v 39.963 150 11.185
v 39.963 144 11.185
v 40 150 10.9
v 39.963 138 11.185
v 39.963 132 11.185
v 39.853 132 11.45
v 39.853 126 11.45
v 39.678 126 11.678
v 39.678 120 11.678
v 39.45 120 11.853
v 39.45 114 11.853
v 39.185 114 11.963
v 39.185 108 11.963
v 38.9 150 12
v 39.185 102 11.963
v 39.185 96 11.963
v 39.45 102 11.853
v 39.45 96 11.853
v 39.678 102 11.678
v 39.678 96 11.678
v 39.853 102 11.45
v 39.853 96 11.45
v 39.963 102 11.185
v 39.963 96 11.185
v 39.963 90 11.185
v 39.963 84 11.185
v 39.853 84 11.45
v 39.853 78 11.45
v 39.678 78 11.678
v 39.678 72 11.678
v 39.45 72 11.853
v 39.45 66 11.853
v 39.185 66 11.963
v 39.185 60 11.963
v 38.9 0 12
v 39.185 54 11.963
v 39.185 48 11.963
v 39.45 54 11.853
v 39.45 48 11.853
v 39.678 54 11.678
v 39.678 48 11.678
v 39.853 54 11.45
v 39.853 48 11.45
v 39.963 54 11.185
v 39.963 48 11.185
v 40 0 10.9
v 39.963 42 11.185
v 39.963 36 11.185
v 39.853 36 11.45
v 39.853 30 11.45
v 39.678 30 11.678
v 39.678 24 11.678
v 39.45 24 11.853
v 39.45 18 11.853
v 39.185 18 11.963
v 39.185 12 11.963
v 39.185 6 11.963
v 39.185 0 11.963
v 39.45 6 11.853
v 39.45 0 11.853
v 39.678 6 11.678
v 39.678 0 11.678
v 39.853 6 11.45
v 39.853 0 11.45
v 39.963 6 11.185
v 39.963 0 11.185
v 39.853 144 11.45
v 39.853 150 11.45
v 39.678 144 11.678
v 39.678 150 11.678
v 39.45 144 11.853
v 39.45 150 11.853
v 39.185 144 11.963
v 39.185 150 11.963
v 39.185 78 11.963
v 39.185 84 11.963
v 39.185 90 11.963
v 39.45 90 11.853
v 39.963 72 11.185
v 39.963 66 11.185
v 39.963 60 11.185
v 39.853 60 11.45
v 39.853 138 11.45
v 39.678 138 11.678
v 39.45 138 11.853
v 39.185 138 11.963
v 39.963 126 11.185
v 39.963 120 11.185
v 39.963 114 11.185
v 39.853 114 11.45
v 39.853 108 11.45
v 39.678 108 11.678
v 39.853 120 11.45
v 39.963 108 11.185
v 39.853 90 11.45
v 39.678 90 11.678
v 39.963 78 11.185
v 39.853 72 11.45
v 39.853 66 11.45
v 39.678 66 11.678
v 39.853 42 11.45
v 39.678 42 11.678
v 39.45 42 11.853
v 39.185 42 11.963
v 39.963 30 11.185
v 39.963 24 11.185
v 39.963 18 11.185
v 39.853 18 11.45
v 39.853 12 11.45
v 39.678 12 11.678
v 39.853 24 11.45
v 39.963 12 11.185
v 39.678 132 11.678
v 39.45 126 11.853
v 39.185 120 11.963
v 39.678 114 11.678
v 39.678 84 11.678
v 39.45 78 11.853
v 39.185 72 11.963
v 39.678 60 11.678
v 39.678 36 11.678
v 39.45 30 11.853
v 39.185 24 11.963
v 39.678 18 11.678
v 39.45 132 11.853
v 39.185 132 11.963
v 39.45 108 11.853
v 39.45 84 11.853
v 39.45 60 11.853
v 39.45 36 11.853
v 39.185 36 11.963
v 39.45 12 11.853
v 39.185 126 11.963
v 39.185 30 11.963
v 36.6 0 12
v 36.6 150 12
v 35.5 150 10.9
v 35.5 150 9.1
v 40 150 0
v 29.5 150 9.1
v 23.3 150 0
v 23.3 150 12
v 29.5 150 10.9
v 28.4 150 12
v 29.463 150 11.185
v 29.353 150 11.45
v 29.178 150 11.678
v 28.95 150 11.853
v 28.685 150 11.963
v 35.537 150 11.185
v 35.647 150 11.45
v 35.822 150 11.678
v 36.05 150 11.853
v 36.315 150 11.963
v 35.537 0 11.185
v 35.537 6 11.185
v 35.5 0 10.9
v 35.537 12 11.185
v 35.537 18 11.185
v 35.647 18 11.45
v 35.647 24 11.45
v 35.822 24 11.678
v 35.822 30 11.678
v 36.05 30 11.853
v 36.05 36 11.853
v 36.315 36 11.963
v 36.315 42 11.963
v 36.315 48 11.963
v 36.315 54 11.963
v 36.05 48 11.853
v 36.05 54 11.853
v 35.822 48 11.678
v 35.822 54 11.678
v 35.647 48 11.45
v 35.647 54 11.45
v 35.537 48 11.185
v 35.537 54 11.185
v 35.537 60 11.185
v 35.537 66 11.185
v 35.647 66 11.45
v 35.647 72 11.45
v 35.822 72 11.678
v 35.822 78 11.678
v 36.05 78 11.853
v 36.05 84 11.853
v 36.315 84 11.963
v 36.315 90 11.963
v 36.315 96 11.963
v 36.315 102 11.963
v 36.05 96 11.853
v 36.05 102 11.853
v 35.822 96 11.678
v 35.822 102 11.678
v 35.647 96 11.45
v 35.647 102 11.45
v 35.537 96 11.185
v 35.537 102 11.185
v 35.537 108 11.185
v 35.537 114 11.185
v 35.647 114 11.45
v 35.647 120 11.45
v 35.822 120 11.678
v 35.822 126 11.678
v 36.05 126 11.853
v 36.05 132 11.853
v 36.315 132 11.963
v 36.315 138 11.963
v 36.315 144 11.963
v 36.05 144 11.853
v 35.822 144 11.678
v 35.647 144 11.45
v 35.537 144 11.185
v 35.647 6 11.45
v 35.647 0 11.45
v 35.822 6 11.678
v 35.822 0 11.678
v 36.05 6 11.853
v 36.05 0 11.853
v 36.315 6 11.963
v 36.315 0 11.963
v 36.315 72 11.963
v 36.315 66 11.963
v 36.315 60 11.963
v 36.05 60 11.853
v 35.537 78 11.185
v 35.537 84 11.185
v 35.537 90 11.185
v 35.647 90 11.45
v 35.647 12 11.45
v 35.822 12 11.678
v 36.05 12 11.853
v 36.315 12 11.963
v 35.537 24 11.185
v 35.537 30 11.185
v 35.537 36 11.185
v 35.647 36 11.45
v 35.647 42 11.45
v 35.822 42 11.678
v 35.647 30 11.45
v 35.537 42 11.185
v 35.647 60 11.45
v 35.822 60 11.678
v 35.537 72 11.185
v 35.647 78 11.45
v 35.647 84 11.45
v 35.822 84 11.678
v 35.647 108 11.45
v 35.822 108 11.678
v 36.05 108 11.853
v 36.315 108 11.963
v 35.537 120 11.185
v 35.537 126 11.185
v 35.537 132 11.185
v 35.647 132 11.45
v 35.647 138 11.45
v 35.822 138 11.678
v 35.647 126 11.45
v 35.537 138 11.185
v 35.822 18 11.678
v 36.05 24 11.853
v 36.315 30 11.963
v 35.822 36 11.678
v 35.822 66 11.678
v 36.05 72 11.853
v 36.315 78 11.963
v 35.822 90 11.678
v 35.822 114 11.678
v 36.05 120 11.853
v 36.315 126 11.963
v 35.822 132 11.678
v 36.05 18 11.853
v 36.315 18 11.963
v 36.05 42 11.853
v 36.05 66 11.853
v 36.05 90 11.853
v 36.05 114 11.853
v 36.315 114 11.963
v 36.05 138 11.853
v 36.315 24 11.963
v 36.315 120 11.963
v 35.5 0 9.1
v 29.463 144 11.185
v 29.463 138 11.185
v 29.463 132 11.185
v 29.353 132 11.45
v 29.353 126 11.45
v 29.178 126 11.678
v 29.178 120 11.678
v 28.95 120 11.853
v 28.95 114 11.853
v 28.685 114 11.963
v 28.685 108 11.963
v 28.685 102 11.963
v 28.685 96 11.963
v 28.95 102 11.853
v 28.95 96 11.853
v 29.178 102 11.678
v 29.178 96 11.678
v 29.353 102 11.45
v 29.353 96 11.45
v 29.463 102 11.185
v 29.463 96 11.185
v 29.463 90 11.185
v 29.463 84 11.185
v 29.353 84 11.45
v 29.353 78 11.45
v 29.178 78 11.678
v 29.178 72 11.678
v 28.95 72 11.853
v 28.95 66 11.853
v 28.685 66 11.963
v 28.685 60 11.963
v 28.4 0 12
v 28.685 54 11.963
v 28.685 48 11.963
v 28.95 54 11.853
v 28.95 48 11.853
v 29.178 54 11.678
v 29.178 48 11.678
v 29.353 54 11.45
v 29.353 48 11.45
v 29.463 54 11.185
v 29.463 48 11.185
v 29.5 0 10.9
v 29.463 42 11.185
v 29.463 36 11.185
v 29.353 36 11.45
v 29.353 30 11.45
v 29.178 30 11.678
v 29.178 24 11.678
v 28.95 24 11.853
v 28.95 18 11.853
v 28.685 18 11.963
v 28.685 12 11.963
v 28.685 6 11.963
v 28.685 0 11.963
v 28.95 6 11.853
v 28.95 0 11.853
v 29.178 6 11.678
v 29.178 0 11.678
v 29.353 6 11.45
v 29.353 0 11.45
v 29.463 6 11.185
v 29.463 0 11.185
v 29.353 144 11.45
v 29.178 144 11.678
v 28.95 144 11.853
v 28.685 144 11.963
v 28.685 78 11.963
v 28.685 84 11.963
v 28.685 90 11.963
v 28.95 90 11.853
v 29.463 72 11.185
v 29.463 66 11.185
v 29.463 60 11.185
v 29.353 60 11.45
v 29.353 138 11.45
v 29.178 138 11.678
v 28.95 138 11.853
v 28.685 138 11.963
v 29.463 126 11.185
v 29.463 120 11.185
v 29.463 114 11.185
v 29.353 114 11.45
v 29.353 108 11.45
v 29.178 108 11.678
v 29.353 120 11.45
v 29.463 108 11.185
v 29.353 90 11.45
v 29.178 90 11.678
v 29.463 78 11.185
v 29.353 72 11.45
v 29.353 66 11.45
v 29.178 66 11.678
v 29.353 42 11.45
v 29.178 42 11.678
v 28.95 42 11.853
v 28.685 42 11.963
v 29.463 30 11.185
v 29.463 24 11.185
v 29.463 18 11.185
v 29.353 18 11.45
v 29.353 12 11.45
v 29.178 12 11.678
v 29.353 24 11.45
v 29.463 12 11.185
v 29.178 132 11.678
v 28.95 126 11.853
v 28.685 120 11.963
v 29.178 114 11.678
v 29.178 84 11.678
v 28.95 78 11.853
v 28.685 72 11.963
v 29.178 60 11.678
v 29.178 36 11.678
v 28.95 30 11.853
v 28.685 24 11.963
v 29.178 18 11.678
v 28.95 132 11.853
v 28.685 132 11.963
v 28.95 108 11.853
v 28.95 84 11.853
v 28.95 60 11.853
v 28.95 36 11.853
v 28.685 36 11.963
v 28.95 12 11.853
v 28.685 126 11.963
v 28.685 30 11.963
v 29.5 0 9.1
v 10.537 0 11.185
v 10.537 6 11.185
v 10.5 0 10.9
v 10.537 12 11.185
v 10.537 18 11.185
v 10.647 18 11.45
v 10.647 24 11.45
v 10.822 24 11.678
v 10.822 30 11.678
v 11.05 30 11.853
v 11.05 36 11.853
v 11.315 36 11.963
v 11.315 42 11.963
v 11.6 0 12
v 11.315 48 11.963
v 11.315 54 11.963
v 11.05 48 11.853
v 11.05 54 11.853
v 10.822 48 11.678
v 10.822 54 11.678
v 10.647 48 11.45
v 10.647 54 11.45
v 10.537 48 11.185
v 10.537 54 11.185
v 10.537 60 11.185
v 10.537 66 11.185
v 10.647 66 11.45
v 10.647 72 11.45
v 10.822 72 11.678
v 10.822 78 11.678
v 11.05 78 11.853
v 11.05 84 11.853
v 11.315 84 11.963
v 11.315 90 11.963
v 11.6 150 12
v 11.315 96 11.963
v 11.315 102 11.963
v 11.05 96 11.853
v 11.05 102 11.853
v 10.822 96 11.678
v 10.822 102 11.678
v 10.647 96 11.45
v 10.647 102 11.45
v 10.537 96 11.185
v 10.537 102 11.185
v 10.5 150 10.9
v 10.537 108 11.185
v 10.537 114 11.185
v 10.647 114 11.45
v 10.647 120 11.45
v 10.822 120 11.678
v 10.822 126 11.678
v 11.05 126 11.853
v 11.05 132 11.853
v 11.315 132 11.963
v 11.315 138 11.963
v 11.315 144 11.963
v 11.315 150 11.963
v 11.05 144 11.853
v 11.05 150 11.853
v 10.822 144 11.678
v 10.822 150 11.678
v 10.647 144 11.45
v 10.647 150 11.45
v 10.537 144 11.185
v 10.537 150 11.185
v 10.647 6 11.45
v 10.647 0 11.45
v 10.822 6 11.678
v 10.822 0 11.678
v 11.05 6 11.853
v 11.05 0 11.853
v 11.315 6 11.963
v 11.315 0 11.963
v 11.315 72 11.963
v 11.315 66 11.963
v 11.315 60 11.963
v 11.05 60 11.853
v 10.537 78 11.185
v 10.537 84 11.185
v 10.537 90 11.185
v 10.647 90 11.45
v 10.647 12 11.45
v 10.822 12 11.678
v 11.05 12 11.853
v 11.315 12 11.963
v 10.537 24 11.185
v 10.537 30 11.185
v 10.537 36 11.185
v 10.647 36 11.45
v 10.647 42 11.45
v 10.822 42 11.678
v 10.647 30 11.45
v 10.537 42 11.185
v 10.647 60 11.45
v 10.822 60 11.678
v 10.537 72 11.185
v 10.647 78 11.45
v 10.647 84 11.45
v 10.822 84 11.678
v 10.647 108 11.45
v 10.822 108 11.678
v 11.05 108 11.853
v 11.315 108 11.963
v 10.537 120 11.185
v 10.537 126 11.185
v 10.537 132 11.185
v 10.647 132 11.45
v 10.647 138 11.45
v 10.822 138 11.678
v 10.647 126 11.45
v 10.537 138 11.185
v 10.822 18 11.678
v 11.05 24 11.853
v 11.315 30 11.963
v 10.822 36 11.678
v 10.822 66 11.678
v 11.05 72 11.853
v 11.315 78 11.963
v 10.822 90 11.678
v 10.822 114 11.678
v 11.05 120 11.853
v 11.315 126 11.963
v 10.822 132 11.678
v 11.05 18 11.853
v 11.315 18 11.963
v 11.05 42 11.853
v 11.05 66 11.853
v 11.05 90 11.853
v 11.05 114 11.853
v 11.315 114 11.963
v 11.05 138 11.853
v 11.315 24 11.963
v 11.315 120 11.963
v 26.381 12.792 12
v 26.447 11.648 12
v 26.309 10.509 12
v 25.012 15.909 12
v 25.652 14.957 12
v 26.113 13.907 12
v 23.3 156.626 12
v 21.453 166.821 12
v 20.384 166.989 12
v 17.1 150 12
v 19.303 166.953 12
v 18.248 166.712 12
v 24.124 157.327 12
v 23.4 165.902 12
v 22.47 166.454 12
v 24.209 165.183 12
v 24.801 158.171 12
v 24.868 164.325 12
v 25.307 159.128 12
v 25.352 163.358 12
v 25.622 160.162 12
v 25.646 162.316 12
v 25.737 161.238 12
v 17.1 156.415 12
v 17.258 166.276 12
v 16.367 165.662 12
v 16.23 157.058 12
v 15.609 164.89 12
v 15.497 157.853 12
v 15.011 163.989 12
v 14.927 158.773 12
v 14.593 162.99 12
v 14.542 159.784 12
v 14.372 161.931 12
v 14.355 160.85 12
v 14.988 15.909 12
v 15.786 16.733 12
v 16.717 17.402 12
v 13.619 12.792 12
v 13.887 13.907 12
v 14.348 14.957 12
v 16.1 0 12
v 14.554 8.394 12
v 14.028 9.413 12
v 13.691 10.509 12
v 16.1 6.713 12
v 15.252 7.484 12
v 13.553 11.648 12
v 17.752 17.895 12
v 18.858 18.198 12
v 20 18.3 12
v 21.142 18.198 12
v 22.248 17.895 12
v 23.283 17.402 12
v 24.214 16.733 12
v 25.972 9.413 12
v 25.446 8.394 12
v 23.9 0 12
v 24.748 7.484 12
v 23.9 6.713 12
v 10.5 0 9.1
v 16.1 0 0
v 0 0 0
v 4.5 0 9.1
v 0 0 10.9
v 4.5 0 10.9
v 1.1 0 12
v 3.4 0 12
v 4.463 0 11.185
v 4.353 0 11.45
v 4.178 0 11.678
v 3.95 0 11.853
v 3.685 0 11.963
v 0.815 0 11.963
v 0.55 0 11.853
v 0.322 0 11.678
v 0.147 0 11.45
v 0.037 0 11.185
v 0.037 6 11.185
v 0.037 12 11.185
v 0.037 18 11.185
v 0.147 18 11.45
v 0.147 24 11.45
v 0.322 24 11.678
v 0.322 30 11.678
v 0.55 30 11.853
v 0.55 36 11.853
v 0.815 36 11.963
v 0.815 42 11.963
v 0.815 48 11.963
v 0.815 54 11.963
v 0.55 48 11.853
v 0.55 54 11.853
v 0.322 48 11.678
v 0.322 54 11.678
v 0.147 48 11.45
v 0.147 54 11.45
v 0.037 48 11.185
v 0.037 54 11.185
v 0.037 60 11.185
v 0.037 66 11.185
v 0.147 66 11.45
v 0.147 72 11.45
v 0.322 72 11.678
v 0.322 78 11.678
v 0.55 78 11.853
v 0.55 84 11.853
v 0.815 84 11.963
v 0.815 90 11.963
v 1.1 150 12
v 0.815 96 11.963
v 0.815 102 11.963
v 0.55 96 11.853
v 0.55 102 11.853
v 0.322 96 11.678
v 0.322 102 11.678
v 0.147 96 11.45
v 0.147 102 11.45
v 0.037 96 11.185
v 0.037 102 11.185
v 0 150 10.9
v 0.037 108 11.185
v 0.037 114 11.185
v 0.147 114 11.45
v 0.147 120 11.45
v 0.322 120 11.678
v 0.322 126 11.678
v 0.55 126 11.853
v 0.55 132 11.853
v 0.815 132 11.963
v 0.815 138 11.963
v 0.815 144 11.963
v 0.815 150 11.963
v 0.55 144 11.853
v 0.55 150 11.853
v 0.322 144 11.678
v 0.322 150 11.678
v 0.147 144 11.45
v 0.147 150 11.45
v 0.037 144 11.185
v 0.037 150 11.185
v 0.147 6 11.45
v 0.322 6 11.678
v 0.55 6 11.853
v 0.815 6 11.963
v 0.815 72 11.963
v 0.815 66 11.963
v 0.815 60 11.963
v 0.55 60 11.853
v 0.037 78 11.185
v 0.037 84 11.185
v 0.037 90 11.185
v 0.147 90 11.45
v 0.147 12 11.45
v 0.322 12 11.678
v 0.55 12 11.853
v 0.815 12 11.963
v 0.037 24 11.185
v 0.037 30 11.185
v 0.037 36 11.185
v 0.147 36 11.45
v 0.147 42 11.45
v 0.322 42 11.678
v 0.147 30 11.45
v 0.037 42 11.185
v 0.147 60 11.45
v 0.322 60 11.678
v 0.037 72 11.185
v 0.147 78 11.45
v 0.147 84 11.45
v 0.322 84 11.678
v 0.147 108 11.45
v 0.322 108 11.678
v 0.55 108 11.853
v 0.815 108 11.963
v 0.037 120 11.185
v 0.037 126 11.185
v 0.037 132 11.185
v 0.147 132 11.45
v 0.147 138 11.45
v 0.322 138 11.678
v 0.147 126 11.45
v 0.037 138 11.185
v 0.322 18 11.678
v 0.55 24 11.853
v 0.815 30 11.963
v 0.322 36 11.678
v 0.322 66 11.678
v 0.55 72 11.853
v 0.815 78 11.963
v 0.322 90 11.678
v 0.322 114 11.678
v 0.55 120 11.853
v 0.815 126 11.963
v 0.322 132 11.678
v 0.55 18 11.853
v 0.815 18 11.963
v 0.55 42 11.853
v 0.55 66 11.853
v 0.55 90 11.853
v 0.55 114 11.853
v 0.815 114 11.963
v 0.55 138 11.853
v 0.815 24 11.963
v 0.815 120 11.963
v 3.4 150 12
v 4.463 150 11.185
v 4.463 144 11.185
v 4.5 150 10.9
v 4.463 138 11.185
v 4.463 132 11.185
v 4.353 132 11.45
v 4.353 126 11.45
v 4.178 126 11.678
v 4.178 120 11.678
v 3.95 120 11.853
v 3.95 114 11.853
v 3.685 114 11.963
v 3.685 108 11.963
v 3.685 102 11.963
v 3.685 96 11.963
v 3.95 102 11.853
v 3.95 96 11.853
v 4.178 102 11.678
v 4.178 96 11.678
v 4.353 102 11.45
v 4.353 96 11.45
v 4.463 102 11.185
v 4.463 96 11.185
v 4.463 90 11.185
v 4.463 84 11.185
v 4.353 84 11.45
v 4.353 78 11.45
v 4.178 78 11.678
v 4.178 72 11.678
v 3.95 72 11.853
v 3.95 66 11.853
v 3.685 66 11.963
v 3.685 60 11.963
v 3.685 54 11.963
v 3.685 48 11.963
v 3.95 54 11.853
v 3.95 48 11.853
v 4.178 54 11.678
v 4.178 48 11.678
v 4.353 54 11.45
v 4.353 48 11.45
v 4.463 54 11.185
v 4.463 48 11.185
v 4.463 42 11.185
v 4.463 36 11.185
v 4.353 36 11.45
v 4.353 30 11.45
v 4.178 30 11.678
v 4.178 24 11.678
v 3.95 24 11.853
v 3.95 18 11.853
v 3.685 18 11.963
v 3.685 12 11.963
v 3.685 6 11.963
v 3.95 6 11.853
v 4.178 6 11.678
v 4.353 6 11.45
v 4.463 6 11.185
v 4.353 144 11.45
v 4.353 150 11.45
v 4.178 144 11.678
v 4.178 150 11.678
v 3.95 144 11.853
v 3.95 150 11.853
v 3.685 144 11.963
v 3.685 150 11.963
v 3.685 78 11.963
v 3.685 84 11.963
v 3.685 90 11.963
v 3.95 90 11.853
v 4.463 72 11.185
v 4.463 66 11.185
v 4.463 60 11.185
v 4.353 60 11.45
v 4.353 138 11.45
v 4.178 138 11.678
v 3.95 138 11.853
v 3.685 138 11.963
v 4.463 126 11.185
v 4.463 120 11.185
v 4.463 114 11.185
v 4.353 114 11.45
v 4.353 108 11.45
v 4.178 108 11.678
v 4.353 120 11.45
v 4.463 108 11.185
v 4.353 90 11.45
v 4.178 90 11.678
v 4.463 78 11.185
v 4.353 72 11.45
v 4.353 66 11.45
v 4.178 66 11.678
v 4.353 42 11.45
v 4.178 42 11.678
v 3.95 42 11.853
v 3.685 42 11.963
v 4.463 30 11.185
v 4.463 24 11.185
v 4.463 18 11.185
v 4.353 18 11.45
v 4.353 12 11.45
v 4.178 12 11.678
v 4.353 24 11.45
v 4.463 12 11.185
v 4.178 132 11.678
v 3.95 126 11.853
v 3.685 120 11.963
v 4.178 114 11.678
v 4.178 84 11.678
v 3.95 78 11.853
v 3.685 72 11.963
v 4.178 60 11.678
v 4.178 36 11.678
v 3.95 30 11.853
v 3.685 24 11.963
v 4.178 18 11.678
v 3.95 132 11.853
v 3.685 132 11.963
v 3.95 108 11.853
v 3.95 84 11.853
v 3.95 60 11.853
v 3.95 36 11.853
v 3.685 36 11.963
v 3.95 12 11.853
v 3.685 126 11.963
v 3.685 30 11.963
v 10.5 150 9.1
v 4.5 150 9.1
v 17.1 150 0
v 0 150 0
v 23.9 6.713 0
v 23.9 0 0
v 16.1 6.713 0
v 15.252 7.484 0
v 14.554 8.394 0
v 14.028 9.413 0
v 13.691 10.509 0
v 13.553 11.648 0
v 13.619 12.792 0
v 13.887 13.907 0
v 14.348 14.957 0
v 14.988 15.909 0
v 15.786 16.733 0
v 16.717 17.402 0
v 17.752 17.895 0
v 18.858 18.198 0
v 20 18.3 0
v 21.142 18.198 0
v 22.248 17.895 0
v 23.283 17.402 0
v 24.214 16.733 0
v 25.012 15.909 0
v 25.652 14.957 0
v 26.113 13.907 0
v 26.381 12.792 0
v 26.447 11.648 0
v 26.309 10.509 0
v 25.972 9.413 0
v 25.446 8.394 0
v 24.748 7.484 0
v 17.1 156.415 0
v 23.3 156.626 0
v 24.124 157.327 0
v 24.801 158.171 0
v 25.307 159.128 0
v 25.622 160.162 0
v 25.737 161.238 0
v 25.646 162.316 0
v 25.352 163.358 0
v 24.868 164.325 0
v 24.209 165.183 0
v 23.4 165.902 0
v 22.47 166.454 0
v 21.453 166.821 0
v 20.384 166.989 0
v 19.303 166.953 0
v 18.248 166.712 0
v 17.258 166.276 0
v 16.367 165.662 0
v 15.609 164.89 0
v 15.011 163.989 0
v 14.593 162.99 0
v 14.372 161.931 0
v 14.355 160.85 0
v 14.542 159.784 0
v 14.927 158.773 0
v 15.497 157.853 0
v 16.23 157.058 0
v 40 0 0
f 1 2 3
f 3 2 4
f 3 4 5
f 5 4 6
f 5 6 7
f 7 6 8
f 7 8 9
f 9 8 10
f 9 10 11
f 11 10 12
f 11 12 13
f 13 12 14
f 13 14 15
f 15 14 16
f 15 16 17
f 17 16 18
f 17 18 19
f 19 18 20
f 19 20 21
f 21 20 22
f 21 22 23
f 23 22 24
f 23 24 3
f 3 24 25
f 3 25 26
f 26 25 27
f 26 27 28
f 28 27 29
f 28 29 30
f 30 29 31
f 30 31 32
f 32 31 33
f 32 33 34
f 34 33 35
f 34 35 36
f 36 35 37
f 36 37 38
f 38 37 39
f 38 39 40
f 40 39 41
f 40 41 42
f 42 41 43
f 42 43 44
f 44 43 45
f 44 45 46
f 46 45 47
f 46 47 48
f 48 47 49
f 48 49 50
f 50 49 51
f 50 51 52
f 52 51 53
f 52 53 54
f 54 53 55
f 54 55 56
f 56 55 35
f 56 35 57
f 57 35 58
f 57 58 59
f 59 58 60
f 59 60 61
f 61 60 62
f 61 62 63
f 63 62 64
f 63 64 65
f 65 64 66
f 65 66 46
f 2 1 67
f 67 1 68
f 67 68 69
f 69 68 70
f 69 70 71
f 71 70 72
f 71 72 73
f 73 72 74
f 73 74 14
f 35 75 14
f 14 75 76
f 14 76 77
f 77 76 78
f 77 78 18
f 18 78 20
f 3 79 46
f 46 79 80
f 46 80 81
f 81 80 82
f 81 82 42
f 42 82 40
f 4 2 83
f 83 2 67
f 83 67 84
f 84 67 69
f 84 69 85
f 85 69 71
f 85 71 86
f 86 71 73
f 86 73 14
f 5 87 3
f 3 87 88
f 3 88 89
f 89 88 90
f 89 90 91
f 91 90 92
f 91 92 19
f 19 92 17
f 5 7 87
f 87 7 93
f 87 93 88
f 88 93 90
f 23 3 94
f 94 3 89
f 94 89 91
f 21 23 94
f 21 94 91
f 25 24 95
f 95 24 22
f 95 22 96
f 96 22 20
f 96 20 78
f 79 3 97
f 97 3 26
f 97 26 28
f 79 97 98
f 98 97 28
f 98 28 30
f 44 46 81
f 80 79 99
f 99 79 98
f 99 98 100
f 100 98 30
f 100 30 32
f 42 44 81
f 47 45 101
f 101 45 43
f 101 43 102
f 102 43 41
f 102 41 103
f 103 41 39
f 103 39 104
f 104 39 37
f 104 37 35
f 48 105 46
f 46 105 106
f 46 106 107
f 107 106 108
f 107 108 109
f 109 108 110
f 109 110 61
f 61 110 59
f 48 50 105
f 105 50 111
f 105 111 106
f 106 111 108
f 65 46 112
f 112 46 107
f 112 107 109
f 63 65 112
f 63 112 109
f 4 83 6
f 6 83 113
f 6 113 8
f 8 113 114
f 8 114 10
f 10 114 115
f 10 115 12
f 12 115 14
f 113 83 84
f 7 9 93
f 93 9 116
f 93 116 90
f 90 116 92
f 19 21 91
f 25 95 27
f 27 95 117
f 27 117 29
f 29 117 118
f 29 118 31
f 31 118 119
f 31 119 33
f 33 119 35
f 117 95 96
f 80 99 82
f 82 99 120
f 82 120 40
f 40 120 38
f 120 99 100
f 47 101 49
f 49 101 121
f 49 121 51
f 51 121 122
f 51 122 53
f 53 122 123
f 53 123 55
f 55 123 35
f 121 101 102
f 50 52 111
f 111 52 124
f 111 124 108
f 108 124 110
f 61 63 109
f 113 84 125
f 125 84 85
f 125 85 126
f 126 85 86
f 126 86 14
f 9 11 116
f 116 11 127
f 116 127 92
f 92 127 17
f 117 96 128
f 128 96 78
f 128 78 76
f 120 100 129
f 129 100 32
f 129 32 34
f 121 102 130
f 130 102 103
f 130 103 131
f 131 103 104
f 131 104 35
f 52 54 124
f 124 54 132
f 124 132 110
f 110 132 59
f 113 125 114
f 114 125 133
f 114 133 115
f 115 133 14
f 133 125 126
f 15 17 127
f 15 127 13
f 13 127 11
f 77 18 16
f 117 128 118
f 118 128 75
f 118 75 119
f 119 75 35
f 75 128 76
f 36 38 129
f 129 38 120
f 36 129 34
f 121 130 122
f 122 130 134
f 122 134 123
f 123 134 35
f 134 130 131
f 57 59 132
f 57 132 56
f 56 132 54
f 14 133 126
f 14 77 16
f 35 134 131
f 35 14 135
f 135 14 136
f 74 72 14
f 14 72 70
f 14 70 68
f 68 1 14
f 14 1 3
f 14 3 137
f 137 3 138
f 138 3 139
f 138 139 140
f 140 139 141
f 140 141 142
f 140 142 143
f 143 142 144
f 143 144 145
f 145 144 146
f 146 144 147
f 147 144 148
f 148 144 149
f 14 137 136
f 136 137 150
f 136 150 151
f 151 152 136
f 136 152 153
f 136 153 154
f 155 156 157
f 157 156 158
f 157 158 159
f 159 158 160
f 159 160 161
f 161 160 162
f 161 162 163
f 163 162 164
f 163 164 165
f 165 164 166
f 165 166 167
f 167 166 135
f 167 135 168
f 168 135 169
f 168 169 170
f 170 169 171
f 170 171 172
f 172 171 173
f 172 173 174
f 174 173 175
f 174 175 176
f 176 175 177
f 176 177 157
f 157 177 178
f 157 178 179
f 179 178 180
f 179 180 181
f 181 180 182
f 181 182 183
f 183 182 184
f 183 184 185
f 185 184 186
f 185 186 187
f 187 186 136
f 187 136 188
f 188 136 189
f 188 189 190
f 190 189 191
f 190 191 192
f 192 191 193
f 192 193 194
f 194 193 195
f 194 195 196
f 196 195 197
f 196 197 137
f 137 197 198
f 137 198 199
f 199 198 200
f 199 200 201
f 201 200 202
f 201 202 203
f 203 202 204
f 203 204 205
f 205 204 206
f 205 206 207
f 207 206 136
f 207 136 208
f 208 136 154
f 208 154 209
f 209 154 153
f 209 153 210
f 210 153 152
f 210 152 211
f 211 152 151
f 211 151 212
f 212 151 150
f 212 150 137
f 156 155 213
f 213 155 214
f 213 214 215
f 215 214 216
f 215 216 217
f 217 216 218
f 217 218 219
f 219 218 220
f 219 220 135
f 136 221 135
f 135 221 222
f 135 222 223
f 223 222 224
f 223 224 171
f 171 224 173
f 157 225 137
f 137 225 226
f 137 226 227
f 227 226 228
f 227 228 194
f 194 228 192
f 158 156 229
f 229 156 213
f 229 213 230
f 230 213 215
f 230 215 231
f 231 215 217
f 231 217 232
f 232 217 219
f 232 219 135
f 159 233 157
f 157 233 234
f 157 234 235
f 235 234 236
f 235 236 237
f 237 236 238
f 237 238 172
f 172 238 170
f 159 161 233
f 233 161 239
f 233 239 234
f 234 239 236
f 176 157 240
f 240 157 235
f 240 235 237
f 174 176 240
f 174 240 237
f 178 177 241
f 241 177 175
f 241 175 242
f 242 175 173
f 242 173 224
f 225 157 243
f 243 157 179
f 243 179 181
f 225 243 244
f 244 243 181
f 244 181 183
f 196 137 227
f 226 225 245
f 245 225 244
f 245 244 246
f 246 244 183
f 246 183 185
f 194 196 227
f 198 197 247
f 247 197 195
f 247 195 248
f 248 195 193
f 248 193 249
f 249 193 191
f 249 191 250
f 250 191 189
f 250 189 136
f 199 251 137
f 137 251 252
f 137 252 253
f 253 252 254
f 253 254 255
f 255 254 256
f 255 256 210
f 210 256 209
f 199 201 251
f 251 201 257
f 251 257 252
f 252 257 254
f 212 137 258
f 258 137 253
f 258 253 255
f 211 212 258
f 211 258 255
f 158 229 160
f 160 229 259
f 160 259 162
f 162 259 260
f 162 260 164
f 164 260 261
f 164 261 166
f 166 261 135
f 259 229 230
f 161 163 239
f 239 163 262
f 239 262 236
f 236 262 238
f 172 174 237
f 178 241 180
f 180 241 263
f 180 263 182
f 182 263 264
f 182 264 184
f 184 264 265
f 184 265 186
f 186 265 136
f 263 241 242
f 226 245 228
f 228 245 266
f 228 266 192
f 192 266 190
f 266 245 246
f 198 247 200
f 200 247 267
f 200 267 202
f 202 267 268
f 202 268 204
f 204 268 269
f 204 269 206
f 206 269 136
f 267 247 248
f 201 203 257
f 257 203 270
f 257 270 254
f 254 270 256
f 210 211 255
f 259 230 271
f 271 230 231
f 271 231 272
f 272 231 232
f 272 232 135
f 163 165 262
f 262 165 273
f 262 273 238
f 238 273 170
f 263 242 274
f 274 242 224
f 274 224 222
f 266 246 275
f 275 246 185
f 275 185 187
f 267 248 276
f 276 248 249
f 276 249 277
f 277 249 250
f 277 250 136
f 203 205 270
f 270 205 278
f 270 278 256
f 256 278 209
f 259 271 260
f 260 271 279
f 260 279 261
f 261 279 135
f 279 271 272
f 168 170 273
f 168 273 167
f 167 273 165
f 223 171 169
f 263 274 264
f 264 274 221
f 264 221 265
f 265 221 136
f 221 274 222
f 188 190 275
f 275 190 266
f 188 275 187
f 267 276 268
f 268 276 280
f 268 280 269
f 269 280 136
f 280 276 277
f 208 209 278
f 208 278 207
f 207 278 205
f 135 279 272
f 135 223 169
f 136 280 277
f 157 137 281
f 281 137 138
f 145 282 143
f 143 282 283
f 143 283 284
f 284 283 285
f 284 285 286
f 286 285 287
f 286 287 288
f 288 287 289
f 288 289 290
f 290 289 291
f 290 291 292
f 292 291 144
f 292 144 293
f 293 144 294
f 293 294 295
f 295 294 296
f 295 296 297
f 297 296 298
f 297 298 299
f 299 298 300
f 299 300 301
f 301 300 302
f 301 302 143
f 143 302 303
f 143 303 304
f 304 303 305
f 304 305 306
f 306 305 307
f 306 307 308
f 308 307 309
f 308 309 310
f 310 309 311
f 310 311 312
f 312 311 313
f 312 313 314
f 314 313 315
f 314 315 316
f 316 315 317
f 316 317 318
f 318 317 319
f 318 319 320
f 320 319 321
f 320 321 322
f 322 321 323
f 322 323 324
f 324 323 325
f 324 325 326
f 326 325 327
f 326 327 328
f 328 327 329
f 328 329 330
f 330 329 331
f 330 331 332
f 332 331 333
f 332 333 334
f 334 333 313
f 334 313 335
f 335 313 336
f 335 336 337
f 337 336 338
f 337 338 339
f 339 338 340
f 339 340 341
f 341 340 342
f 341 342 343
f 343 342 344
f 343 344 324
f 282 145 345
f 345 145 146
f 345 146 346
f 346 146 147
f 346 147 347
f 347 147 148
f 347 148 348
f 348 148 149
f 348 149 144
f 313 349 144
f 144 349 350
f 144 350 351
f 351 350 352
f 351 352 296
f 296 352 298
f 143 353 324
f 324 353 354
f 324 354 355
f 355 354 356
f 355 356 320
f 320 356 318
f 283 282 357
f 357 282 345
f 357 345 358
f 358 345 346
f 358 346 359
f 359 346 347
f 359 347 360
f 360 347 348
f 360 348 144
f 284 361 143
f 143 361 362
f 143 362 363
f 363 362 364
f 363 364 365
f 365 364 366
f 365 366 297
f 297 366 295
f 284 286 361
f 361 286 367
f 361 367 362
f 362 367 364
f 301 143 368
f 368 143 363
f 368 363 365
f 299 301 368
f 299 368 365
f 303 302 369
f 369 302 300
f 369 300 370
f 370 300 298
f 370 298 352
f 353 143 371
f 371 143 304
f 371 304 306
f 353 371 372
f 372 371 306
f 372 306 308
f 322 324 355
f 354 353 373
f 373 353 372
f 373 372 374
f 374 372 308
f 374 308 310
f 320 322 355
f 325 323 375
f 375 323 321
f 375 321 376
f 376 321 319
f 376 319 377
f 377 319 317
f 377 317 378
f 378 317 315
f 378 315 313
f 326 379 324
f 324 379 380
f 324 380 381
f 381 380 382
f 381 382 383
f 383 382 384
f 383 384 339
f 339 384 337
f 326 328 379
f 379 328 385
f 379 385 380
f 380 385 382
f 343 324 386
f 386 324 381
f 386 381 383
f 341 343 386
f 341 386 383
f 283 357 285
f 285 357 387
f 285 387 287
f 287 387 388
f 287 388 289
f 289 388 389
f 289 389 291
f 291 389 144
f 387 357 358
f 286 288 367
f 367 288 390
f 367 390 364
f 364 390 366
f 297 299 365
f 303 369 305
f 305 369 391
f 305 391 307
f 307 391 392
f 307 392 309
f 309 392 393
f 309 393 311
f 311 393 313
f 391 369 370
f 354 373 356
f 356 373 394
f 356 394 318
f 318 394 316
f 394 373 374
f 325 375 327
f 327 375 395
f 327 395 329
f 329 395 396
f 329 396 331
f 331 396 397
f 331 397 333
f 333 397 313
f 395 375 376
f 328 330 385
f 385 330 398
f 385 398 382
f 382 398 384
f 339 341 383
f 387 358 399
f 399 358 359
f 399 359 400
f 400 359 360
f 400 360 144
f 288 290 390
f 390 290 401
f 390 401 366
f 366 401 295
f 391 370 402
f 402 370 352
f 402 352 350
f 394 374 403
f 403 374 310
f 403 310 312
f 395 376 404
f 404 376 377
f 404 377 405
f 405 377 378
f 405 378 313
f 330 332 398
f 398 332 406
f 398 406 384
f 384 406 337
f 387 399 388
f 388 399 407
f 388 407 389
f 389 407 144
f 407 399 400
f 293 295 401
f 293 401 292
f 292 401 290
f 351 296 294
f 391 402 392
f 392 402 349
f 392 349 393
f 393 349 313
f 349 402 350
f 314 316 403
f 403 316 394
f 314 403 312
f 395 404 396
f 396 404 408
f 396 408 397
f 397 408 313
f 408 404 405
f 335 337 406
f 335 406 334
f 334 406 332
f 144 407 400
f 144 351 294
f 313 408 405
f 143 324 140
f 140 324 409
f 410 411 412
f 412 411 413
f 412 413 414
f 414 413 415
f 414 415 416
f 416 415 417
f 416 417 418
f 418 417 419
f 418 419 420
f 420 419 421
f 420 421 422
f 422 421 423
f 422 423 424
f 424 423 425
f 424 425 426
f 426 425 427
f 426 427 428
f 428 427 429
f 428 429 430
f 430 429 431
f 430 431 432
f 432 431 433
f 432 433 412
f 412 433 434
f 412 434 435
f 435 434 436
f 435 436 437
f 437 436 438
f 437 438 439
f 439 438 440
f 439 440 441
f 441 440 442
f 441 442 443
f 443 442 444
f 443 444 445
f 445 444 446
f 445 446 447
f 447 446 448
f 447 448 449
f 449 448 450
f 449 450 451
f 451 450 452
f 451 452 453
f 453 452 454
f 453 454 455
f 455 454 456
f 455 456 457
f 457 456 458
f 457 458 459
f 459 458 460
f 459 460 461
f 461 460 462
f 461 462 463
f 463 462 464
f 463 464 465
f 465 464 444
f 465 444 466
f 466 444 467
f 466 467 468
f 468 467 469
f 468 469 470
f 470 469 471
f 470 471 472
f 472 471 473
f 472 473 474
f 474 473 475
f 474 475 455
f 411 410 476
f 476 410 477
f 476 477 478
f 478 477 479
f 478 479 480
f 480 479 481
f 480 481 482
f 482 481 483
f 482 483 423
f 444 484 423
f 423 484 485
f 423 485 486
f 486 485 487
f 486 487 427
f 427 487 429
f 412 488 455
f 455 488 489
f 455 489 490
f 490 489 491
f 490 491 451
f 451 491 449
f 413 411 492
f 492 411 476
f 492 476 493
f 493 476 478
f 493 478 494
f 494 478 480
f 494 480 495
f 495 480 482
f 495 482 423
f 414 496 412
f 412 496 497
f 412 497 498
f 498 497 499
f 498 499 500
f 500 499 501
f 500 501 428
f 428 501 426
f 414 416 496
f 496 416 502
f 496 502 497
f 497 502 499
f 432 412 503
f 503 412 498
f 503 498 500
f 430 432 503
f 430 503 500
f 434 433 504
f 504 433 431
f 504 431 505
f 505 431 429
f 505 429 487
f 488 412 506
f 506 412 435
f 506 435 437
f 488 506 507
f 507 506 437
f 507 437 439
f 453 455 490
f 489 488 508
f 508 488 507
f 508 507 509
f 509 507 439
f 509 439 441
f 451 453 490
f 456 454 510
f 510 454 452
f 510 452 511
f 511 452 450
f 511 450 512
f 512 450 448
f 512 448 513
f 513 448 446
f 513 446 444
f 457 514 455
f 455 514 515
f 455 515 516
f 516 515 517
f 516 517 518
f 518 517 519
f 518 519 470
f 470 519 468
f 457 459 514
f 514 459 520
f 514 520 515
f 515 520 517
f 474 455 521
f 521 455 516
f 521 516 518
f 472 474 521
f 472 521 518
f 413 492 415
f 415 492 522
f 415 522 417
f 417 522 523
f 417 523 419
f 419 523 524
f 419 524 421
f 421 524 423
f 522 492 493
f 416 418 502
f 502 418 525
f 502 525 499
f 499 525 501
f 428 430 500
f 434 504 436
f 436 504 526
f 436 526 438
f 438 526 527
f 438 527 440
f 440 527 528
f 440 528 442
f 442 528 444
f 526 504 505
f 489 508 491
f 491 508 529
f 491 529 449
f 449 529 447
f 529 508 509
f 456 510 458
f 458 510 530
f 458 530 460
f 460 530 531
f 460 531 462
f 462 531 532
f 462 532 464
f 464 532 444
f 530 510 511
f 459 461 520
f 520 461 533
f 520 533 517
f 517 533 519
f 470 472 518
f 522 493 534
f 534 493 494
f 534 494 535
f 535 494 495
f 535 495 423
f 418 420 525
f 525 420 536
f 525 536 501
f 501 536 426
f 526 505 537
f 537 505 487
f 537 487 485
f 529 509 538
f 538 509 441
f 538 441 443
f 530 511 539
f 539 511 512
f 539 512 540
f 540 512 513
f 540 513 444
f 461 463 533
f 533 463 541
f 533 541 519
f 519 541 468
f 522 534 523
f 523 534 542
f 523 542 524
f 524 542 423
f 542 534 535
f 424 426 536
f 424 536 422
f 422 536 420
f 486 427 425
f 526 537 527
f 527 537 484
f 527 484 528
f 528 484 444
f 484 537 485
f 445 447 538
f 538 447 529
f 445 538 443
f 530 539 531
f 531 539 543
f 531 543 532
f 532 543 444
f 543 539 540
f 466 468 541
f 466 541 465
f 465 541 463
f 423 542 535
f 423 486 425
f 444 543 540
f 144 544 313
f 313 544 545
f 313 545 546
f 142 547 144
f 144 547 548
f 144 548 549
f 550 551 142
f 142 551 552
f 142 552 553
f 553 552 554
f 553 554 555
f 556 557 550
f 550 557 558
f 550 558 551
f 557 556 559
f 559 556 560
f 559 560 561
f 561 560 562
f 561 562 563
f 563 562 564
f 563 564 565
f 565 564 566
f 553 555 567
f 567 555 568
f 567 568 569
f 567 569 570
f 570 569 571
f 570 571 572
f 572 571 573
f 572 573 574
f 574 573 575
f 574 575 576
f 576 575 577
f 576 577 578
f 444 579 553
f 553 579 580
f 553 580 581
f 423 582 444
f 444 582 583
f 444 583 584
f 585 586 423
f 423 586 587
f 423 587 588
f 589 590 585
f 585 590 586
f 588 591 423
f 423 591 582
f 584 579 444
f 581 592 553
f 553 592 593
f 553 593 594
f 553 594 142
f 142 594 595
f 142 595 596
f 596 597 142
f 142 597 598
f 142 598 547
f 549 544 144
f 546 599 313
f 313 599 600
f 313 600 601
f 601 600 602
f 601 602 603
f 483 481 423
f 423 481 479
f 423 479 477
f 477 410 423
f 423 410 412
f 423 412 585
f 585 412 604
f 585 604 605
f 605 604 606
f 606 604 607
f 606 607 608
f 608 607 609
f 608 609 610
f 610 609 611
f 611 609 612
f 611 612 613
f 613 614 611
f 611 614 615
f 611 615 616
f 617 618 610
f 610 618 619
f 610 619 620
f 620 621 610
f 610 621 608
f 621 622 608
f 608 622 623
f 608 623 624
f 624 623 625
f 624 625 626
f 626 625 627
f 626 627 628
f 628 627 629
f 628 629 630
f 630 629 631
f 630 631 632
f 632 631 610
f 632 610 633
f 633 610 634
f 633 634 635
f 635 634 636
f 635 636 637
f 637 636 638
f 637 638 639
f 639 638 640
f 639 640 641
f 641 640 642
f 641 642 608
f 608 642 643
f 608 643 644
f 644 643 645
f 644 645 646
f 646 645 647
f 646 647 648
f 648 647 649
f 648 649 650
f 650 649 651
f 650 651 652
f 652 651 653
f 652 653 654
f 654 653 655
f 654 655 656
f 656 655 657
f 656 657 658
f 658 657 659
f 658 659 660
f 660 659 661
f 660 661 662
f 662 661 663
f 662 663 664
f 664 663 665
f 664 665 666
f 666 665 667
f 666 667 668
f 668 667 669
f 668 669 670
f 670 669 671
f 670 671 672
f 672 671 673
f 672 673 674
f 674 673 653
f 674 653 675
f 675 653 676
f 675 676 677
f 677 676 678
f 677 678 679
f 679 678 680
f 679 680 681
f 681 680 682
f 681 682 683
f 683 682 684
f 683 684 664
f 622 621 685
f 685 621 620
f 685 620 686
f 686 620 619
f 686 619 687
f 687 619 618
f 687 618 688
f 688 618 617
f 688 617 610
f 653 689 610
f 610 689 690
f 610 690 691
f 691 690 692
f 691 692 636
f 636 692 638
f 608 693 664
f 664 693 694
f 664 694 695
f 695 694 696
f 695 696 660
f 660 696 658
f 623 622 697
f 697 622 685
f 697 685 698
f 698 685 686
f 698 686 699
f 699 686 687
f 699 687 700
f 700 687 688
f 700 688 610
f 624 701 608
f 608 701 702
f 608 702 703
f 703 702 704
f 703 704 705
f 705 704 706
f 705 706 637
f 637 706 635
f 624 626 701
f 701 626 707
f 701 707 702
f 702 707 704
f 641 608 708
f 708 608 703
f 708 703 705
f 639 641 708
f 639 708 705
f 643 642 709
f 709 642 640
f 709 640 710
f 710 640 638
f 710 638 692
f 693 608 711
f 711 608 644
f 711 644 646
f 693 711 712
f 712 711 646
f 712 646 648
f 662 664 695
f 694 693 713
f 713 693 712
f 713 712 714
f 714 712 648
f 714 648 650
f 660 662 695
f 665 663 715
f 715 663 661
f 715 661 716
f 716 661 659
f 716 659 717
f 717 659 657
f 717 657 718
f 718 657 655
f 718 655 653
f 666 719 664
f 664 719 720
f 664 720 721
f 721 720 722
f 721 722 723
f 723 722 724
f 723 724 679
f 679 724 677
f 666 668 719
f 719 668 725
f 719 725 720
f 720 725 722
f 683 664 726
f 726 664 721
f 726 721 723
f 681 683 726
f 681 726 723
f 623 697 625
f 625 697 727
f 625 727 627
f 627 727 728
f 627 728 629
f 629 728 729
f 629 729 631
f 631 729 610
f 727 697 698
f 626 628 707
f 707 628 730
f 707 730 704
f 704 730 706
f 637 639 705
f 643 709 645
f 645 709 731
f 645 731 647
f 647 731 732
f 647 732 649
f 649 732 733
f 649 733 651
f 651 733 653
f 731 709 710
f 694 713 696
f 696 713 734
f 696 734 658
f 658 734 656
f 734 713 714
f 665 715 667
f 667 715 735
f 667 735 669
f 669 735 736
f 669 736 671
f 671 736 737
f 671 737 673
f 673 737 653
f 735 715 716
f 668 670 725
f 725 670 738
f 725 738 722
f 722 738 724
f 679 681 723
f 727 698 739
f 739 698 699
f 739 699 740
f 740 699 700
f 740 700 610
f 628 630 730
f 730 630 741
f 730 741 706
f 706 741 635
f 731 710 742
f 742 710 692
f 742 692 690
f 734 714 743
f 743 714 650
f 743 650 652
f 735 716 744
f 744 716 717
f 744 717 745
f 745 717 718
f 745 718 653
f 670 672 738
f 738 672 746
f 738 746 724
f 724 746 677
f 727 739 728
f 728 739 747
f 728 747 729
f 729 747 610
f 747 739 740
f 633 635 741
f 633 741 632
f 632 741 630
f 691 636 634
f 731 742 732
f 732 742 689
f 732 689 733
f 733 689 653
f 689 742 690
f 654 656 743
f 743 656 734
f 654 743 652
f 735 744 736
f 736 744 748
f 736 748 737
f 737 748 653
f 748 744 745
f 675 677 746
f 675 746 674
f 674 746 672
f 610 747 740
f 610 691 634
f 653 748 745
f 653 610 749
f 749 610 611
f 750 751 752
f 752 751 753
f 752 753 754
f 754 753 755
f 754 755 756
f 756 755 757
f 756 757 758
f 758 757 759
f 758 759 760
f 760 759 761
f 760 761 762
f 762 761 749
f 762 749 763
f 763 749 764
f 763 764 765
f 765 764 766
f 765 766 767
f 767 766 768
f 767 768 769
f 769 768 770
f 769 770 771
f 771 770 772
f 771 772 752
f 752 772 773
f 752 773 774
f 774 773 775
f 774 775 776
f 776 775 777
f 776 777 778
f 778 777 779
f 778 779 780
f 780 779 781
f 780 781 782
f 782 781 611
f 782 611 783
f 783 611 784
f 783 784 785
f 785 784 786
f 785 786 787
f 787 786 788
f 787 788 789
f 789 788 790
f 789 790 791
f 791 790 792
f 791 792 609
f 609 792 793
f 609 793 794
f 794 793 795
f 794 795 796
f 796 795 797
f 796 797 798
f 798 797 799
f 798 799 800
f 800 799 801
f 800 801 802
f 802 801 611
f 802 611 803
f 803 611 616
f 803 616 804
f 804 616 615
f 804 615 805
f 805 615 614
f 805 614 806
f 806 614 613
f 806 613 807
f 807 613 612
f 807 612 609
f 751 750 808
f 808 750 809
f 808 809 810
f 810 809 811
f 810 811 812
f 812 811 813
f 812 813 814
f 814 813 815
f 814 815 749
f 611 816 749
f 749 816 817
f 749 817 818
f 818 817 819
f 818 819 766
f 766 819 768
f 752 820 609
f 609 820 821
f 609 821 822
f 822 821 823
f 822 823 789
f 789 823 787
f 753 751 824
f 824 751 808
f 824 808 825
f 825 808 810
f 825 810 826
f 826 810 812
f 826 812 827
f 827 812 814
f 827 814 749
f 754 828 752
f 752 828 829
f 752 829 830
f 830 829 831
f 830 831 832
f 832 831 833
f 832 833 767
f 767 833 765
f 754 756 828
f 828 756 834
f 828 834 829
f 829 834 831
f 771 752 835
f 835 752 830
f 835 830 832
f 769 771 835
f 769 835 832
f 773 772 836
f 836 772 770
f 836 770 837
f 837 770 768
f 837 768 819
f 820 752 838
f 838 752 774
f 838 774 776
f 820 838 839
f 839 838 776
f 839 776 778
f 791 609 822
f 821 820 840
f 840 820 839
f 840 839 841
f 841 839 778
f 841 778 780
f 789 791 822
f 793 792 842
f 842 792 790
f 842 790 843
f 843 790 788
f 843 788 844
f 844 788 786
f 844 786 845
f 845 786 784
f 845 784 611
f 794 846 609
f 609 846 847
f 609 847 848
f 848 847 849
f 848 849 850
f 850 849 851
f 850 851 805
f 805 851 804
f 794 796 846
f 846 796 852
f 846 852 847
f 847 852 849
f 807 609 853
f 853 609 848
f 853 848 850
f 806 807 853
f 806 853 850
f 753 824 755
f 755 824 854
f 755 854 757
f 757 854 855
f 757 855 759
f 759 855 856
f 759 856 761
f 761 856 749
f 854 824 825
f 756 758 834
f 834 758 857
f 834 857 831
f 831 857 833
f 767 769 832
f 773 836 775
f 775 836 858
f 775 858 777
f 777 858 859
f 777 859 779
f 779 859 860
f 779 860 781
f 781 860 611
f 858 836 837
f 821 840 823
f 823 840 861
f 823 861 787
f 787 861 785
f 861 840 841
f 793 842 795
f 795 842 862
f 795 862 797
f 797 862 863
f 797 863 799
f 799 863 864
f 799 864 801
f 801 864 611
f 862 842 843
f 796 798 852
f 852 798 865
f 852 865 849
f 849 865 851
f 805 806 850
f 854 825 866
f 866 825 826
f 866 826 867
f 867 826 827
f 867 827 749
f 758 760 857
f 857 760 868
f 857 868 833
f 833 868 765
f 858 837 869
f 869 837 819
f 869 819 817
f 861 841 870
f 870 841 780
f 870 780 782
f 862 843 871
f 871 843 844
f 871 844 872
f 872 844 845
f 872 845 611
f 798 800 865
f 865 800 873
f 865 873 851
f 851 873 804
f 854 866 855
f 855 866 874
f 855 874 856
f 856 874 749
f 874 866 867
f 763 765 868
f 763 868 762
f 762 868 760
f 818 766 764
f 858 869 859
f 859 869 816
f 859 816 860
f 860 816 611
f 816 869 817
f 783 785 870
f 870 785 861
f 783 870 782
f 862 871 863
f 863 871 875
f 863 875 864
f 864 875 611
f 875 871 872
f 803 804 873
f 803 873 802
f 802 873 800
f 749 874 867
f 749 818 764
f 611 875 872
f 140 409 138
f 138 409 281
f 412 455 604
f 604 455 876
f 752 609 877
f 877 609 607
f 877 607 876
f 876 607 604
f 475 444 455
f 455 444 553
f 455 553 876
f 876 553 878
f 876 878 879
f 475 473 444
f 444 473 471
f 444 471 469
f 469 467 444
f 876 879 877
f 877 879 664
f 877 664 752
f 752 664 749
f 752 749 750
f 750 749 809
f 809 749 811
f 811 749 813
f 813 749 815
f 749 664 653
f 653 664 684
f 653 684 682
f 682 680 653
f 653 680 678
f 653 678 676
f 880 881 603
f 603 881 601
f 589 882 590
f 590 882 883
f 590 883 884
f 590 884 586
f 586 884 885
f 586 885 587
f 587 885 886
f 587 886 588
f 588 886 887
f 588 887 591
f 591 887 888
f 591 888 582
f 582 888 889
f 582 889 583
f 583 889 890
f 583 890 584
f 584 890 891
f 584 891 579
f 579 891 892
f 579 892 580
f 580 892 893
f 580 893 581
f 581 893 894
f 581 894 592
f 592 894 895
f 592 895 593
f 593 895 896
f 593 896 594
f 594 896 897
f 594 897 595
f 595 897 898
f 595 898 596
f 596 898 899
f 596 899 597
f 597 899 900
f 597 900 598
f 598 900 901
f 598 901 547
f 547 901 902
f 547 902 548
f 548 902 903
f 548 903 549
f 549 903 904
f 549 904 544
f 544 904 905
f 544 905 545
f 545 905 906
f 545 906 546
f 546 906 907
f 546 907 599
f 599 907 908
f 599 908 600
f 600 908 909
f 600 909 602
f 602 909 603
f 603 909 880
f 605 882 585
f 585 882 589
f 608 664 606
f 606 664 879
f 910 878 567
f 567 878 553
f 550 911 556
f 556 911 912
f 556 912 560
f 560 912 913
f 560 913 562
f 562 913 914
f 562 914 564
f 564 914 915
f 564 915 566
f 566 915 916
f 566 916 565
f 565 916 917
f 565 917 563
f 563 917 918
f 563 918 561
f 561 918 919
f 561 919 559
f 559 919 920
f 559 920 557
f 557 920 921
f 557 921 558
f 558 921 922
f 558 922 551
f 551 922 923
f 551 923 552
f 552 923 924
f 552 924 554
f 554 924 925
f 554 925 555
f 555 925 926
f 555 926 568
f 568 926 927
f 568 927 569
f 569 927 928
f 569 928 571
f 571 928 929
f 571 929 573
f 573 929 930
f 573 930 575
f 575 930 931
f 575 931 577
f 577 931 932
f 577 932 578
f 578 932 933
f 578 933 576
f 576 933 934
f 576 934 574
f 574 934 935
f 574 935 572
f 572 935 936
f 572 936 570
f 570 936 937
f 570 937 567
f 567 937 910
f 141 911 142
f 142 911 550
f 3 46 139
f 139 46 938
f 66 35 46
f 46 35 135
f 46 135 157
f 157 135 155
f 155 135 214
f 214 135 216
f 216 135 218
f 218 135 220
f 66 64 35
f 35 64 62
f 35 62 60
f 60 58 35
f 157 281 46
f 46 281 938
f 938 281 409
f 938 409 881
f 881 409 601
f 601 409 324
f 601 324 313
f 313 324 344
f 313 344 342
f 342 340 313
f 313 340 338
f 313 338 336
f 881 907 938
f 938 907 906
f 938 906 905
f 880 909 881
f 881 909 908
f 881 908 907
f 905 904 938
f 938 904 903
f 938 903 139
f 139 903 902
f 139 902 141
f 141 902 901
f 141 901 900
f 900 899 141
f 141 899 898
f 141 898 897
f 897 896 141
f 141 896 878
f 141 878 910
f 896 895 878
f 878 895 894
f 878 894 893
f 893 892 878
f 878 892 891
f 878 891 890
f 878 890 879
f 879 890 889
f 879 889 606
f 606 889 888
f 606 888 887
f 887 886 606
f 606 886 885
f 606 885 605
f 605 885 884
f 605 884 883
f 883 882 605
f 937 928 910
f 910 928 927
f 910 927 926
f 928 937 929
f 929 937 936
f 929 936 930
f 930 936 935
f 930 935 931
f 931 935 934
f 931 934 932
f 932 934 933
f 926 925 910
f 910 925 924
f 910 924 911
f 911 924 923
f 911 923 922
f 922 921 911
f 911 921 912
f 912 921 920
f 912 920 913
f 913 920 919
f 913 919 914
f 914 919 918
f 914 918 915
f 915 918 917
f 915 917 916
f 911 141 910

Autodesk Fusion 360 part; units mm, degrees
sketch "Sketch1" plane through (0, 0, 0) normal (0, 0, 1) x (1, 0, 0)
  line L0 (0, 0) -> (40, 0)
  line L1 (40, 0) -> (40, 150)
  line L2 (40, 150) -> (0, 150)
  line L3 (0, 150) -> (0, 0)
  line L4 (17.1, 150) -> (23.3, 150)
  line L5 (23.3, 150) -> (23.3, 157)
  line L6 (23.3, 157) -> (17.1, 157)
  line L7 (17.1, 157) -> (17.1, 150)
  circle A0 centre (20.0369, 161.3) radius 5.7
  circle A1 centre (20, 11.85) radius 6.45
  line L8 (16.1, 0) -> (23.9, 0)
  line L9 (23.9, 0) -> (23.9, 7)
  line L10 (23.9, 7) -> (16.1, 7)
  line L11 (16.1, 7) -> (16.1, 0)
  dimension "d1" = 40
  dimension "d2" = 150
  dimension "d3" = 6.2
  dimension "d4" = 7
  dimension "d5" = 23.3
  dimension "d6" = 11.4
  dimension "d8" = 17
  dimension "d9" = 12.9
  dimension "d11" = 18.3
  dimension "d12" = 20
  dimension "d13" = 7.8
  dimension "d14" = 7
  dimension "d15" = 16.1
extrude "Extrude1" add sketch "Sketch1" along normal blind 12 contours L0 L1 L2 L3 L4 A1 L9 L11 | L2 L4 L5 L7 A0 | L5 L6 L7 A0 | L5 L6 L7 A0
sketch "Sketch2" plane through (0, 0, 12) normal (0, 0, 1) x (-1, 0, 0)
  line L0 (-23.9, 0) -> (-40, 0)
  line L1 (-40, 0) -> (-40, -150)
  line L2 (-40, -150) -> (-23.3, -150)
  line L3 (-23.3, -150) -> (-23.3, -156.6265)
  arc A0 (-23.3, -156.6265) -> (-17.1, -156.4148) centre (-20.0369, -161.3) ccw
  line L4 (-17.1, -156.4148) -> (-17.1, -150)
  line L5 (-17.1, -150) -> (0, -150)
  line L6 (0, -150) -> (0, 0)
  line L7 (0, 0) -> (-16.1, 0)
  line L8 (-16.1, 0) -> (-16.1, -6.7126)
  arc A1 (-23.9, -6.7126) -> (-16.1, -6.7126) centre (-20, -11.85) ccw
  line L9 (-23.9, -6.7126) -> (-23.9, 0)
  line L10 (-4.5, 0) -> (-10.5, 0)
  line L11 (-10.5, 0) -> (-10.5, -150)
  line L12 (-10.5, -150) -> (-4.5, -150)
  line L13 (-4.5, -150) -> (-4.5, 0)
  line L14 (-35.5, 0) -> (-29.5, 0)
  line L15 (-29.5, 0) -> (-29.5, -150)
  line L16 (-29.5, -150) -> (-35.5, -150)
  line L17 (-35.5, -150) -> (-35.5, 0)
  dimension "d18" = 6
  dimension "d19" = 150
  dimension "d20" = 4.5
  dimension "d21" = 6
  dimension "d22" = 150
  dimension "d23" = 4.5
extrude "Extrude2" cut sketch "Sketch2" against normal blind 2.9 contours L0 L2 L14 L15 L16 L17 | L5 L7 L10 L11 L12 L13
fillet "Fillet1" radius 1.1 6 edges at (4.5, 75, 12) (0, 75, 12) (10.5, 75, 12) (29.5, 75, 12) (35.5, 75, 12) (40, 75, 12)
